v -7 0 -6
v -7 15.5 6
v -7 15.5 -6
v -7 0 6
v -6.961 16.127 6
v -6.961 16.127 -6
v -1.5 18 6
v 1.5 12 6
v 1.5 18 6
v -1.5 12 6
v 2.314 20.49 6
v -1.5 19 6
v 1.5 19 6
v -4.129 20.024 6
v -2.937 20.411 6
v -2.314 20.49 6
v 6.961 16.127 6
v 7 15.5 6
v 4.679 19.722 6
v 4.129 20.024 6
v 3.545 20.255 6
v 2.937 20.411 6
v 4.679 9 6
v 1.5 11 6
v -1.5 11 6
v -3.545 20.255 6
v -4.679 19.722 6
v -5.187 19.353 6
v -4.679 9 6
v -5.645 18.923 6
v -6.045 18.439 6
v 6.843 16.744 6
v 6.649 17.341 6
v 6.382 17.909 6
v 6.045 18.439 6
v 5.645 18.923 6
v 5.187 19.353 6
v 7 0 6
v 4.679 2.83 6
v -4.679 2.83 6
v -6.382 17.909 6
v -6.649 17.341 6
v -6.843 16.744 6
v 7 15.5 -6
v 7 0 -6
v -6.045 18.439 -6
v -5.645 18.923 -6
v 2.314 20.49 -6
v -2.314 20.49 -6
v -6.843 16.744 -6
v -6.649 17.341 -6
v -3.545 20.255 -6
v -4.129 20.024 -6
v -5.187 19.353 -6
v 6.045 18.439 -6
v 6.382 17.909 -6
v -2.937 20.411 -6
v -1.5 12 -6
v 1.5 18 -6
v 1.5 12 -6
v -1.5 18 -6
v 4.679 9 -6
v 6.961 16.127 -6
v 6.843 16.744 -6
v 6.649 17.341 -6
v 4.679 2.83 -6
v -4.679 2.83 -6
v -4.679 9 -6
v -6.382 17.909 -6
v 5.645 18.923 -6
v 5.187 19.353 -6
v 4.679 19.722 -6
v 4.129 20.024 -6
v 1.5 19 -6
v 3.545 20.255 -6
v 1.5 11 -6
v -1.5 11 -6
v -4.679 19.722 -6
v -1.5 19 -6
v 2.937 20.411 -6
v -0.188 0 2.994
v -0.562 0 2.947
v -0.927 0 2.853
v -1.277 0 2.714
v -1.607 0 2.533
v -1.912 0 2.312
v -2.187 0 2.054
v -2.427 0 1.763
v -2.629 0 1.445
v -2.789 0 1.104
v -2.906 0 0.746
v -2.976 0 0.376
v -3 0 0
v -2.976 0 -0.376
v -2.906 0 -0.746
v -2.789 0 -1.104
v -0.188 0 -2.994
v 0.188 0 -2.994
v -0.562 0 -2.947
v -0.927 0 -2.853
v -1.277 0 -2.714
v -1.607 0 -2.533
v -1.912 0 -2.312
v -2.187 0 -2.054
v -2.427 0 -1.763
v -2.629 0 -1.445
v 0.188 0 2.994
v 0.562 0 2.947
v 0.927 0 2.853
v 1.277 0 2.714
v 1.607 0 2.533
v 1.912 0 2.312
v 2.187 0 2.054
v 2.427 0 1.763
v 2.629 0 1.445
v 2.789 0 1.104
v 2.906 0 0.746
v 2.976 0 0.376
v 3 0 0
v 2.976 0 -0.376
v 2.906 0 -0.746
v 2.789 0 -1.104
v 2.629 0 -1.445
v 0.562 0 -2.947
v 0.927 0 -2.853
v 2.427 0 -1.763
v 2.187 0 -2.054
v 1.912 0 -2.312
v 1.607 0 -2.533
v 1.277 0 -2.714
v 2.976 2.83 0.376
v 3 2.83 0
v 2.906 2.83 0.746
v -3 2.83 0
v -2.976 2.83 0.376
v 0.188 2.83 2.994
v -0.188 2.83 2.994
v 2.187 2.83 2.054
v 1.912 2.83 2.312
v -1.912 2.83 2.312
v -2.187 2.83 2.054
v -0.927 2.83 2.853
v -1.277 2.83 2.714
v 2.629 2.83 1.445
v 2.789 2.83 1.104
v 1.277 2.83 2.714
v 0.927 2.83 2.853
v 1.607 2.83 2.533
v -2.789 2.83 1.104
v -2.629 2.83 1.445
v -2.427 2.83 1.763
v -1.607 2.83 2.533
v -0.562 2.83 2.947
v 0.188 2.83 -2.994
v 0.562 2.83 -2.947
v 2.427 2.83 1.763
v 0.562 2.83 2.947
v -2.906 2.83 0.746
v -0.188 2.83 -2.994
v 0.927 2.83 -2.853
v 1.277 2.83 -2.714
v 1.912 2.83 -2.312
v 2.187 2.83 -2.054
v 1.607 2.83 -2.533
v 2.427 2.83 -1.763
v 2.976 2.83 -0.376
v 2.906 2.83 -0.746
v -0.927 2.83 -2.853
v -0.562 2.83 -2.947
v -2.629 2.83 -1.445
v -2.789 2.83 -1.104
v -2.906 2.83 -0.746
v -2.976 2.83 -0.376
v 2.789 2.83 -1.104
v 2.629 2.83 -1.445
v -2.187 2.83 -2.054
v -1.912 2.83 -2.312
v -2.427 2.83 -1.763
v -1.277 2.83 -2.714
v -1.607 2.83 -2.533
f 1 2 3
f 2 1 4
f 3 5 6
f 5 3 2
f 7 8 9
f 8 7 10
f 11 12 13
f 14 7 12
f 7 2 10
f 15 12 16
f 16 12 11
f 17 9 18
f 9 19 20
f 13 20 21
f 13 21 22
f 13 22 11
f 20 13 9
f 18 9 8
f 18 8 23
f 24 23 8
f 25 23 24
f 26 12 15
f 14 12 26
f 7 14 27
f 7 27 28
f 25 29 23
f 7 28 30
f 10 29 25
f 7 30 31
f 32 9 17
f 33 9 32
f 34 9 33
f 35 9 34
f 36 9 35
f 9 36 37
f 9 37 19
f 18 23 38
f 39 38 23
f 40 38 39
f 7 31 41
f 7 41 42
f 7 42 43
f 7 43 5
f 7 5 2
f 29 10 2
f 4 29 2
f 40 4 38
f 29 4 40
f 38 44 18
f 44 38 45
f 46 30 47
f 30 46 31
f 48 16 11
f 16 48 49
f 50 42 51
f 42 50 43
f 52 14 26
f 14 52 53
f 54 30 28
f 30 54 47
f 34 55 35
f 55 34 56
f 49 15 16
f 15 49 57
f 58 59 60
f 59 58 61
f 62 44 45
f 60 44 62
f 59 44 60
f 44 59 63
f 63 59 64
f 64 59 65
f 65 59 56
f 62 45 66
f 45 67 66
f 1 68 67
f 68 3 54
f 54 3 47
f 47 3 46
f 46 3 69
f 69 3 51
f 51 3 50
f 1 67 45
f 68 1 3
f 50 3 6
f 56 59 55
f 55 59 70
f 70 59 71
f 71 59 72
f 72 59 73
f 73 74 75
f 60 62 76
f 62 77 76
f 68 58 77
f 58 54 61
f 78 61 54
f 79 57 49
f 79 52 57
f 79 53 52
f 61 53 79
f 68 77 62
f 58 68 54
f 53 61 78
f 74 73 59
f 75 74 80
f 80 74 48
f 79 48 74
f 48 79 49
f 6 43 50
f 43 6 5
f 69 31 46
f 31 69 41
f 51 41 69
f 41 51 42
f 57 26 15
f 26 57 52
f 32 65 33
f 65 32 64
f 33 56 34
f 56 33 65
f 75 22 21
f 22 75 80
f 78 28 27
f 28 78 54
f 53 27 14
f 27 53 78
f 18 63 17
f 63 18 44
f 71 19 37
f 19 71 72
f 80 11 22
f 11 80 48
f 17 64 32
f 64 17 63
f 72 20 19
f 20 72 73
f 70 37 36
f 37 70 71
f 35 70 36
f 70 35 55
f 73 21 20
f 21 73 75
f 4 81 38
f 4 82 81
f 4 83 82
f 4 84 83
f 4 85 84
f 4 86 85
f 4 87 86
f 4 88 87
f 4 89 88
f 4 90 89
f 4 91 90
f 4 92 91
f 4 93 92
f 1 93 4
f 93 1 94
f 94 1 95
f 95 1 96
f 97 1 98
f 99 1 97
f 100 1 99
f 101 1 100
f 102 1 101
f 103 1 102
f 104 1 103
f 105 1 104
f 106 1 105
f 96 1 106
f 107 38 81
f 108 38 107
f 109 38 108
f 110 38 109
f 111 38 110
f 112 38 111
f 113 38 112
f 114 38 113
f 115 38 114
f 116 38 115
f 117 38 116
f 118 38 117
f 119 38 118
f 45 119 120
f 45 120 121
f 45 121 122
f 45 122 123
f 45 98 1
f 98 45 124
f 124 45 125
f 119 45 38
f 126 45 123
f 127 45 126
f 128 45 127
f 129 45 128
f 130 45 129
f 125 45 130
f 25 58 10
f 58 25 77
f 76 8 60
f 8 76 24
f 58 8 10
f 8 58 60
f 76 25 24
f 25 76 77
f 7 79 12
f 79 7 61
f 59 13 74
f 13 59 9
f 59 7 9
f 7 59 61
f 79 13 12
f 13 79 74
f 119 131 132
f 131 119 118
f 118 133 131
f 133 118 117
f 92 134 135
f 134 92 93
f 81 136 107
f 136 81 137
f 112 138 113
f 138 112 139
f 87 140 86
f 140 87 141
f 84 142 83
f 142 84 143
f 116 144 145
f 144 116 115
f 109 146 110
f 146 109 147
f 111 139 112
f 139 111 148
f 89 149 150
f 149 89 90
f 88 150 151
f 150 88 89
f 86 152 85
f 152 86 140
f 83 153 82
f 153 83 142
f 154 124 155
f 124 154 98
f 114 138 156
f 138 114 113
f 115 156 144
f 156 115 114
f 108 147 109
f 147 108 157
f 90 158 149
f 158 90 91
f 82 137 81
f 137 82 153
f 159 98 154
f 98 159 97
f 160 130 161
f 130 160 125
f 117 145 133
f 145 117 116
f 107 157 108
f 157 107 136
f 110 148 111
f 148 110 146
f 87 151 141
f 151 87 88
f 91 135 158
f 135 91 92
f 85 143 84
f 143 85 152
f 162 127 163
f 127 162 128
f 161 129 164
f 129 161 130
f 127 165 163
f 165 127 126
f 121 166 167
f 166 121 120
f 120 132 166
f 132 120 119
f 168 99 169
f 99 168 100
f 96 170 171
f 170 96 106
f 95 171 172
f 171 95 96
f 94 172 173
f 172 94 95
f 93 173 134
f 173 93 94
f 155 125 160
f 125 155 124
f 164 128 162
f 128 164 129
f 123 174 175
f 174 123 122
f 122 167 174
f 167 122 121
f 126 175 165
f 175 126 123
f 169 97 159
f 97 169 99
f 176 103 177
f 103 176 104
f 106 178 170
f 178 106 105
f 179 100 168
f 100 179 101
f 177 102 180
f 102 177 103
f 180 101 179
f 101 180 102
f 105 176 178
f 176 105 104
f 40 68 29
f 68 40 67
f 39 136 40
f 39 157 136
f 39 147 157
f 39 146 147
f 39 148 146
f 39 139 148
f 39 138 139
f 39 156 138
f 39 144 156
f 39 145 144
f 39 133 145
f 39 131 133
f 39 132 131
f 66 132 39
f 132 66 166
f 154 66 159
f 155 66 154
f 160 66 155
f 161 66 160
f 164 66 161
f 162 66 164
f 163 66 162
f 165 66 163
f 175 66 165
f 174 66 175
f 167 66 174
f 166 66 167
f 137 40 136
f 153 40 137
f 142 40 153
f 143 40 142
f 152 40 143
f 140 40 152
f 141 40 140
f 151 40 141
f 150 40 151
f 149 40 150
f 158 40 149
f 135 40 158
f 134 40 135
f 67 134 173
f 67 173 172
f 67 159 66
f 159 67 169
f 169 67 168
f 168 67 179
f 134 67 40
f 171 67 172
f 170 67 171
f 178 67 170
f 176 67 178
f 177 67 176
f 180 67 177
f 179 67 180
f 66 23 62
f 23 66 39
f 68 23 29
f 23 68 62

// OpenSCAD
$fn = 50;


difference() {
	union() {
		translate(v = [0, 13.5000000000, -6.0000000000]) {
			rotate(a = [0, 0, 0]) {
				hull() {
					translate(v = [-2.0000000000, 2.0000000000, 0]) {
						rotate(a = [0, 0, 0]) {
							translate(v = [0, 0, 0]) {
								rotate(a = [0, 0, 0]) {
									cylinder(h = 12, r = 5);
								}
							}
						}
					}
					translate(v = [2.0000000000, 2.0000000000, 0]) {
						rotate(a = [0, 0, 0]) {
							translate(v = [0, 0, 0]) {
								rotate(a = [0, 0, 0]) {
									cylinder(h = 12, r = 5);
								}
							}
						}
					}
					translate(v = [-2.0000000000, -2.0000000000, 0]) {
						rotate(a = [0, 0, 0]) {
							translate(v = [0, 0, 0]) {
								rotate(a = [0, 0, 0]) {
									cylinder(h = 12, r = 5);
								}
							}
						}
					}
					translate(v = [2.0000000000, -2.0000000000, 0]) {
						rotate(a = [0, 0, 0]) {
							translate(v = [0, 0, 0]) {
								rotate(a = [0, 0, 0]) {
									cylinder(h = 12, r = 5);
								}
							}
						}
					}
				}
			}
		}
		translate(v = [-7.0000000000, 0, -6.0000000000]) {
			rotate(a = [0, 0, 0]) {
				cube(size = [14, 13.5000000000, 12]);
			}
		}
	}
	union() {
		translate(v = [-1.5000000000, 11.0000000000, -50]) {
			rotate(a = [0, 0, 0]) {
				cube(size = [3, 1, 100]);
			}
		}
		translate(v = [-1.5000000000, 18.0000000000, -50]) {
			rotate(a = [0, 0, 0]) {
				cube(size = [3, 1, 100]);
			}
		}
		translate(v = [0.0000000000, 8, 0]) {
			rotate(a = [90, 0, 0]) {
				cylinder(h = 8, r = 3.0000000000);
			}
		}
		translate(v = [-4.6793760832, 9, -25]) {
			rotate(a = [90, 0, 0]) {
				cube(size = [9.3587521664, 100, 6.1700000000]);
			}
		}
	}
}
